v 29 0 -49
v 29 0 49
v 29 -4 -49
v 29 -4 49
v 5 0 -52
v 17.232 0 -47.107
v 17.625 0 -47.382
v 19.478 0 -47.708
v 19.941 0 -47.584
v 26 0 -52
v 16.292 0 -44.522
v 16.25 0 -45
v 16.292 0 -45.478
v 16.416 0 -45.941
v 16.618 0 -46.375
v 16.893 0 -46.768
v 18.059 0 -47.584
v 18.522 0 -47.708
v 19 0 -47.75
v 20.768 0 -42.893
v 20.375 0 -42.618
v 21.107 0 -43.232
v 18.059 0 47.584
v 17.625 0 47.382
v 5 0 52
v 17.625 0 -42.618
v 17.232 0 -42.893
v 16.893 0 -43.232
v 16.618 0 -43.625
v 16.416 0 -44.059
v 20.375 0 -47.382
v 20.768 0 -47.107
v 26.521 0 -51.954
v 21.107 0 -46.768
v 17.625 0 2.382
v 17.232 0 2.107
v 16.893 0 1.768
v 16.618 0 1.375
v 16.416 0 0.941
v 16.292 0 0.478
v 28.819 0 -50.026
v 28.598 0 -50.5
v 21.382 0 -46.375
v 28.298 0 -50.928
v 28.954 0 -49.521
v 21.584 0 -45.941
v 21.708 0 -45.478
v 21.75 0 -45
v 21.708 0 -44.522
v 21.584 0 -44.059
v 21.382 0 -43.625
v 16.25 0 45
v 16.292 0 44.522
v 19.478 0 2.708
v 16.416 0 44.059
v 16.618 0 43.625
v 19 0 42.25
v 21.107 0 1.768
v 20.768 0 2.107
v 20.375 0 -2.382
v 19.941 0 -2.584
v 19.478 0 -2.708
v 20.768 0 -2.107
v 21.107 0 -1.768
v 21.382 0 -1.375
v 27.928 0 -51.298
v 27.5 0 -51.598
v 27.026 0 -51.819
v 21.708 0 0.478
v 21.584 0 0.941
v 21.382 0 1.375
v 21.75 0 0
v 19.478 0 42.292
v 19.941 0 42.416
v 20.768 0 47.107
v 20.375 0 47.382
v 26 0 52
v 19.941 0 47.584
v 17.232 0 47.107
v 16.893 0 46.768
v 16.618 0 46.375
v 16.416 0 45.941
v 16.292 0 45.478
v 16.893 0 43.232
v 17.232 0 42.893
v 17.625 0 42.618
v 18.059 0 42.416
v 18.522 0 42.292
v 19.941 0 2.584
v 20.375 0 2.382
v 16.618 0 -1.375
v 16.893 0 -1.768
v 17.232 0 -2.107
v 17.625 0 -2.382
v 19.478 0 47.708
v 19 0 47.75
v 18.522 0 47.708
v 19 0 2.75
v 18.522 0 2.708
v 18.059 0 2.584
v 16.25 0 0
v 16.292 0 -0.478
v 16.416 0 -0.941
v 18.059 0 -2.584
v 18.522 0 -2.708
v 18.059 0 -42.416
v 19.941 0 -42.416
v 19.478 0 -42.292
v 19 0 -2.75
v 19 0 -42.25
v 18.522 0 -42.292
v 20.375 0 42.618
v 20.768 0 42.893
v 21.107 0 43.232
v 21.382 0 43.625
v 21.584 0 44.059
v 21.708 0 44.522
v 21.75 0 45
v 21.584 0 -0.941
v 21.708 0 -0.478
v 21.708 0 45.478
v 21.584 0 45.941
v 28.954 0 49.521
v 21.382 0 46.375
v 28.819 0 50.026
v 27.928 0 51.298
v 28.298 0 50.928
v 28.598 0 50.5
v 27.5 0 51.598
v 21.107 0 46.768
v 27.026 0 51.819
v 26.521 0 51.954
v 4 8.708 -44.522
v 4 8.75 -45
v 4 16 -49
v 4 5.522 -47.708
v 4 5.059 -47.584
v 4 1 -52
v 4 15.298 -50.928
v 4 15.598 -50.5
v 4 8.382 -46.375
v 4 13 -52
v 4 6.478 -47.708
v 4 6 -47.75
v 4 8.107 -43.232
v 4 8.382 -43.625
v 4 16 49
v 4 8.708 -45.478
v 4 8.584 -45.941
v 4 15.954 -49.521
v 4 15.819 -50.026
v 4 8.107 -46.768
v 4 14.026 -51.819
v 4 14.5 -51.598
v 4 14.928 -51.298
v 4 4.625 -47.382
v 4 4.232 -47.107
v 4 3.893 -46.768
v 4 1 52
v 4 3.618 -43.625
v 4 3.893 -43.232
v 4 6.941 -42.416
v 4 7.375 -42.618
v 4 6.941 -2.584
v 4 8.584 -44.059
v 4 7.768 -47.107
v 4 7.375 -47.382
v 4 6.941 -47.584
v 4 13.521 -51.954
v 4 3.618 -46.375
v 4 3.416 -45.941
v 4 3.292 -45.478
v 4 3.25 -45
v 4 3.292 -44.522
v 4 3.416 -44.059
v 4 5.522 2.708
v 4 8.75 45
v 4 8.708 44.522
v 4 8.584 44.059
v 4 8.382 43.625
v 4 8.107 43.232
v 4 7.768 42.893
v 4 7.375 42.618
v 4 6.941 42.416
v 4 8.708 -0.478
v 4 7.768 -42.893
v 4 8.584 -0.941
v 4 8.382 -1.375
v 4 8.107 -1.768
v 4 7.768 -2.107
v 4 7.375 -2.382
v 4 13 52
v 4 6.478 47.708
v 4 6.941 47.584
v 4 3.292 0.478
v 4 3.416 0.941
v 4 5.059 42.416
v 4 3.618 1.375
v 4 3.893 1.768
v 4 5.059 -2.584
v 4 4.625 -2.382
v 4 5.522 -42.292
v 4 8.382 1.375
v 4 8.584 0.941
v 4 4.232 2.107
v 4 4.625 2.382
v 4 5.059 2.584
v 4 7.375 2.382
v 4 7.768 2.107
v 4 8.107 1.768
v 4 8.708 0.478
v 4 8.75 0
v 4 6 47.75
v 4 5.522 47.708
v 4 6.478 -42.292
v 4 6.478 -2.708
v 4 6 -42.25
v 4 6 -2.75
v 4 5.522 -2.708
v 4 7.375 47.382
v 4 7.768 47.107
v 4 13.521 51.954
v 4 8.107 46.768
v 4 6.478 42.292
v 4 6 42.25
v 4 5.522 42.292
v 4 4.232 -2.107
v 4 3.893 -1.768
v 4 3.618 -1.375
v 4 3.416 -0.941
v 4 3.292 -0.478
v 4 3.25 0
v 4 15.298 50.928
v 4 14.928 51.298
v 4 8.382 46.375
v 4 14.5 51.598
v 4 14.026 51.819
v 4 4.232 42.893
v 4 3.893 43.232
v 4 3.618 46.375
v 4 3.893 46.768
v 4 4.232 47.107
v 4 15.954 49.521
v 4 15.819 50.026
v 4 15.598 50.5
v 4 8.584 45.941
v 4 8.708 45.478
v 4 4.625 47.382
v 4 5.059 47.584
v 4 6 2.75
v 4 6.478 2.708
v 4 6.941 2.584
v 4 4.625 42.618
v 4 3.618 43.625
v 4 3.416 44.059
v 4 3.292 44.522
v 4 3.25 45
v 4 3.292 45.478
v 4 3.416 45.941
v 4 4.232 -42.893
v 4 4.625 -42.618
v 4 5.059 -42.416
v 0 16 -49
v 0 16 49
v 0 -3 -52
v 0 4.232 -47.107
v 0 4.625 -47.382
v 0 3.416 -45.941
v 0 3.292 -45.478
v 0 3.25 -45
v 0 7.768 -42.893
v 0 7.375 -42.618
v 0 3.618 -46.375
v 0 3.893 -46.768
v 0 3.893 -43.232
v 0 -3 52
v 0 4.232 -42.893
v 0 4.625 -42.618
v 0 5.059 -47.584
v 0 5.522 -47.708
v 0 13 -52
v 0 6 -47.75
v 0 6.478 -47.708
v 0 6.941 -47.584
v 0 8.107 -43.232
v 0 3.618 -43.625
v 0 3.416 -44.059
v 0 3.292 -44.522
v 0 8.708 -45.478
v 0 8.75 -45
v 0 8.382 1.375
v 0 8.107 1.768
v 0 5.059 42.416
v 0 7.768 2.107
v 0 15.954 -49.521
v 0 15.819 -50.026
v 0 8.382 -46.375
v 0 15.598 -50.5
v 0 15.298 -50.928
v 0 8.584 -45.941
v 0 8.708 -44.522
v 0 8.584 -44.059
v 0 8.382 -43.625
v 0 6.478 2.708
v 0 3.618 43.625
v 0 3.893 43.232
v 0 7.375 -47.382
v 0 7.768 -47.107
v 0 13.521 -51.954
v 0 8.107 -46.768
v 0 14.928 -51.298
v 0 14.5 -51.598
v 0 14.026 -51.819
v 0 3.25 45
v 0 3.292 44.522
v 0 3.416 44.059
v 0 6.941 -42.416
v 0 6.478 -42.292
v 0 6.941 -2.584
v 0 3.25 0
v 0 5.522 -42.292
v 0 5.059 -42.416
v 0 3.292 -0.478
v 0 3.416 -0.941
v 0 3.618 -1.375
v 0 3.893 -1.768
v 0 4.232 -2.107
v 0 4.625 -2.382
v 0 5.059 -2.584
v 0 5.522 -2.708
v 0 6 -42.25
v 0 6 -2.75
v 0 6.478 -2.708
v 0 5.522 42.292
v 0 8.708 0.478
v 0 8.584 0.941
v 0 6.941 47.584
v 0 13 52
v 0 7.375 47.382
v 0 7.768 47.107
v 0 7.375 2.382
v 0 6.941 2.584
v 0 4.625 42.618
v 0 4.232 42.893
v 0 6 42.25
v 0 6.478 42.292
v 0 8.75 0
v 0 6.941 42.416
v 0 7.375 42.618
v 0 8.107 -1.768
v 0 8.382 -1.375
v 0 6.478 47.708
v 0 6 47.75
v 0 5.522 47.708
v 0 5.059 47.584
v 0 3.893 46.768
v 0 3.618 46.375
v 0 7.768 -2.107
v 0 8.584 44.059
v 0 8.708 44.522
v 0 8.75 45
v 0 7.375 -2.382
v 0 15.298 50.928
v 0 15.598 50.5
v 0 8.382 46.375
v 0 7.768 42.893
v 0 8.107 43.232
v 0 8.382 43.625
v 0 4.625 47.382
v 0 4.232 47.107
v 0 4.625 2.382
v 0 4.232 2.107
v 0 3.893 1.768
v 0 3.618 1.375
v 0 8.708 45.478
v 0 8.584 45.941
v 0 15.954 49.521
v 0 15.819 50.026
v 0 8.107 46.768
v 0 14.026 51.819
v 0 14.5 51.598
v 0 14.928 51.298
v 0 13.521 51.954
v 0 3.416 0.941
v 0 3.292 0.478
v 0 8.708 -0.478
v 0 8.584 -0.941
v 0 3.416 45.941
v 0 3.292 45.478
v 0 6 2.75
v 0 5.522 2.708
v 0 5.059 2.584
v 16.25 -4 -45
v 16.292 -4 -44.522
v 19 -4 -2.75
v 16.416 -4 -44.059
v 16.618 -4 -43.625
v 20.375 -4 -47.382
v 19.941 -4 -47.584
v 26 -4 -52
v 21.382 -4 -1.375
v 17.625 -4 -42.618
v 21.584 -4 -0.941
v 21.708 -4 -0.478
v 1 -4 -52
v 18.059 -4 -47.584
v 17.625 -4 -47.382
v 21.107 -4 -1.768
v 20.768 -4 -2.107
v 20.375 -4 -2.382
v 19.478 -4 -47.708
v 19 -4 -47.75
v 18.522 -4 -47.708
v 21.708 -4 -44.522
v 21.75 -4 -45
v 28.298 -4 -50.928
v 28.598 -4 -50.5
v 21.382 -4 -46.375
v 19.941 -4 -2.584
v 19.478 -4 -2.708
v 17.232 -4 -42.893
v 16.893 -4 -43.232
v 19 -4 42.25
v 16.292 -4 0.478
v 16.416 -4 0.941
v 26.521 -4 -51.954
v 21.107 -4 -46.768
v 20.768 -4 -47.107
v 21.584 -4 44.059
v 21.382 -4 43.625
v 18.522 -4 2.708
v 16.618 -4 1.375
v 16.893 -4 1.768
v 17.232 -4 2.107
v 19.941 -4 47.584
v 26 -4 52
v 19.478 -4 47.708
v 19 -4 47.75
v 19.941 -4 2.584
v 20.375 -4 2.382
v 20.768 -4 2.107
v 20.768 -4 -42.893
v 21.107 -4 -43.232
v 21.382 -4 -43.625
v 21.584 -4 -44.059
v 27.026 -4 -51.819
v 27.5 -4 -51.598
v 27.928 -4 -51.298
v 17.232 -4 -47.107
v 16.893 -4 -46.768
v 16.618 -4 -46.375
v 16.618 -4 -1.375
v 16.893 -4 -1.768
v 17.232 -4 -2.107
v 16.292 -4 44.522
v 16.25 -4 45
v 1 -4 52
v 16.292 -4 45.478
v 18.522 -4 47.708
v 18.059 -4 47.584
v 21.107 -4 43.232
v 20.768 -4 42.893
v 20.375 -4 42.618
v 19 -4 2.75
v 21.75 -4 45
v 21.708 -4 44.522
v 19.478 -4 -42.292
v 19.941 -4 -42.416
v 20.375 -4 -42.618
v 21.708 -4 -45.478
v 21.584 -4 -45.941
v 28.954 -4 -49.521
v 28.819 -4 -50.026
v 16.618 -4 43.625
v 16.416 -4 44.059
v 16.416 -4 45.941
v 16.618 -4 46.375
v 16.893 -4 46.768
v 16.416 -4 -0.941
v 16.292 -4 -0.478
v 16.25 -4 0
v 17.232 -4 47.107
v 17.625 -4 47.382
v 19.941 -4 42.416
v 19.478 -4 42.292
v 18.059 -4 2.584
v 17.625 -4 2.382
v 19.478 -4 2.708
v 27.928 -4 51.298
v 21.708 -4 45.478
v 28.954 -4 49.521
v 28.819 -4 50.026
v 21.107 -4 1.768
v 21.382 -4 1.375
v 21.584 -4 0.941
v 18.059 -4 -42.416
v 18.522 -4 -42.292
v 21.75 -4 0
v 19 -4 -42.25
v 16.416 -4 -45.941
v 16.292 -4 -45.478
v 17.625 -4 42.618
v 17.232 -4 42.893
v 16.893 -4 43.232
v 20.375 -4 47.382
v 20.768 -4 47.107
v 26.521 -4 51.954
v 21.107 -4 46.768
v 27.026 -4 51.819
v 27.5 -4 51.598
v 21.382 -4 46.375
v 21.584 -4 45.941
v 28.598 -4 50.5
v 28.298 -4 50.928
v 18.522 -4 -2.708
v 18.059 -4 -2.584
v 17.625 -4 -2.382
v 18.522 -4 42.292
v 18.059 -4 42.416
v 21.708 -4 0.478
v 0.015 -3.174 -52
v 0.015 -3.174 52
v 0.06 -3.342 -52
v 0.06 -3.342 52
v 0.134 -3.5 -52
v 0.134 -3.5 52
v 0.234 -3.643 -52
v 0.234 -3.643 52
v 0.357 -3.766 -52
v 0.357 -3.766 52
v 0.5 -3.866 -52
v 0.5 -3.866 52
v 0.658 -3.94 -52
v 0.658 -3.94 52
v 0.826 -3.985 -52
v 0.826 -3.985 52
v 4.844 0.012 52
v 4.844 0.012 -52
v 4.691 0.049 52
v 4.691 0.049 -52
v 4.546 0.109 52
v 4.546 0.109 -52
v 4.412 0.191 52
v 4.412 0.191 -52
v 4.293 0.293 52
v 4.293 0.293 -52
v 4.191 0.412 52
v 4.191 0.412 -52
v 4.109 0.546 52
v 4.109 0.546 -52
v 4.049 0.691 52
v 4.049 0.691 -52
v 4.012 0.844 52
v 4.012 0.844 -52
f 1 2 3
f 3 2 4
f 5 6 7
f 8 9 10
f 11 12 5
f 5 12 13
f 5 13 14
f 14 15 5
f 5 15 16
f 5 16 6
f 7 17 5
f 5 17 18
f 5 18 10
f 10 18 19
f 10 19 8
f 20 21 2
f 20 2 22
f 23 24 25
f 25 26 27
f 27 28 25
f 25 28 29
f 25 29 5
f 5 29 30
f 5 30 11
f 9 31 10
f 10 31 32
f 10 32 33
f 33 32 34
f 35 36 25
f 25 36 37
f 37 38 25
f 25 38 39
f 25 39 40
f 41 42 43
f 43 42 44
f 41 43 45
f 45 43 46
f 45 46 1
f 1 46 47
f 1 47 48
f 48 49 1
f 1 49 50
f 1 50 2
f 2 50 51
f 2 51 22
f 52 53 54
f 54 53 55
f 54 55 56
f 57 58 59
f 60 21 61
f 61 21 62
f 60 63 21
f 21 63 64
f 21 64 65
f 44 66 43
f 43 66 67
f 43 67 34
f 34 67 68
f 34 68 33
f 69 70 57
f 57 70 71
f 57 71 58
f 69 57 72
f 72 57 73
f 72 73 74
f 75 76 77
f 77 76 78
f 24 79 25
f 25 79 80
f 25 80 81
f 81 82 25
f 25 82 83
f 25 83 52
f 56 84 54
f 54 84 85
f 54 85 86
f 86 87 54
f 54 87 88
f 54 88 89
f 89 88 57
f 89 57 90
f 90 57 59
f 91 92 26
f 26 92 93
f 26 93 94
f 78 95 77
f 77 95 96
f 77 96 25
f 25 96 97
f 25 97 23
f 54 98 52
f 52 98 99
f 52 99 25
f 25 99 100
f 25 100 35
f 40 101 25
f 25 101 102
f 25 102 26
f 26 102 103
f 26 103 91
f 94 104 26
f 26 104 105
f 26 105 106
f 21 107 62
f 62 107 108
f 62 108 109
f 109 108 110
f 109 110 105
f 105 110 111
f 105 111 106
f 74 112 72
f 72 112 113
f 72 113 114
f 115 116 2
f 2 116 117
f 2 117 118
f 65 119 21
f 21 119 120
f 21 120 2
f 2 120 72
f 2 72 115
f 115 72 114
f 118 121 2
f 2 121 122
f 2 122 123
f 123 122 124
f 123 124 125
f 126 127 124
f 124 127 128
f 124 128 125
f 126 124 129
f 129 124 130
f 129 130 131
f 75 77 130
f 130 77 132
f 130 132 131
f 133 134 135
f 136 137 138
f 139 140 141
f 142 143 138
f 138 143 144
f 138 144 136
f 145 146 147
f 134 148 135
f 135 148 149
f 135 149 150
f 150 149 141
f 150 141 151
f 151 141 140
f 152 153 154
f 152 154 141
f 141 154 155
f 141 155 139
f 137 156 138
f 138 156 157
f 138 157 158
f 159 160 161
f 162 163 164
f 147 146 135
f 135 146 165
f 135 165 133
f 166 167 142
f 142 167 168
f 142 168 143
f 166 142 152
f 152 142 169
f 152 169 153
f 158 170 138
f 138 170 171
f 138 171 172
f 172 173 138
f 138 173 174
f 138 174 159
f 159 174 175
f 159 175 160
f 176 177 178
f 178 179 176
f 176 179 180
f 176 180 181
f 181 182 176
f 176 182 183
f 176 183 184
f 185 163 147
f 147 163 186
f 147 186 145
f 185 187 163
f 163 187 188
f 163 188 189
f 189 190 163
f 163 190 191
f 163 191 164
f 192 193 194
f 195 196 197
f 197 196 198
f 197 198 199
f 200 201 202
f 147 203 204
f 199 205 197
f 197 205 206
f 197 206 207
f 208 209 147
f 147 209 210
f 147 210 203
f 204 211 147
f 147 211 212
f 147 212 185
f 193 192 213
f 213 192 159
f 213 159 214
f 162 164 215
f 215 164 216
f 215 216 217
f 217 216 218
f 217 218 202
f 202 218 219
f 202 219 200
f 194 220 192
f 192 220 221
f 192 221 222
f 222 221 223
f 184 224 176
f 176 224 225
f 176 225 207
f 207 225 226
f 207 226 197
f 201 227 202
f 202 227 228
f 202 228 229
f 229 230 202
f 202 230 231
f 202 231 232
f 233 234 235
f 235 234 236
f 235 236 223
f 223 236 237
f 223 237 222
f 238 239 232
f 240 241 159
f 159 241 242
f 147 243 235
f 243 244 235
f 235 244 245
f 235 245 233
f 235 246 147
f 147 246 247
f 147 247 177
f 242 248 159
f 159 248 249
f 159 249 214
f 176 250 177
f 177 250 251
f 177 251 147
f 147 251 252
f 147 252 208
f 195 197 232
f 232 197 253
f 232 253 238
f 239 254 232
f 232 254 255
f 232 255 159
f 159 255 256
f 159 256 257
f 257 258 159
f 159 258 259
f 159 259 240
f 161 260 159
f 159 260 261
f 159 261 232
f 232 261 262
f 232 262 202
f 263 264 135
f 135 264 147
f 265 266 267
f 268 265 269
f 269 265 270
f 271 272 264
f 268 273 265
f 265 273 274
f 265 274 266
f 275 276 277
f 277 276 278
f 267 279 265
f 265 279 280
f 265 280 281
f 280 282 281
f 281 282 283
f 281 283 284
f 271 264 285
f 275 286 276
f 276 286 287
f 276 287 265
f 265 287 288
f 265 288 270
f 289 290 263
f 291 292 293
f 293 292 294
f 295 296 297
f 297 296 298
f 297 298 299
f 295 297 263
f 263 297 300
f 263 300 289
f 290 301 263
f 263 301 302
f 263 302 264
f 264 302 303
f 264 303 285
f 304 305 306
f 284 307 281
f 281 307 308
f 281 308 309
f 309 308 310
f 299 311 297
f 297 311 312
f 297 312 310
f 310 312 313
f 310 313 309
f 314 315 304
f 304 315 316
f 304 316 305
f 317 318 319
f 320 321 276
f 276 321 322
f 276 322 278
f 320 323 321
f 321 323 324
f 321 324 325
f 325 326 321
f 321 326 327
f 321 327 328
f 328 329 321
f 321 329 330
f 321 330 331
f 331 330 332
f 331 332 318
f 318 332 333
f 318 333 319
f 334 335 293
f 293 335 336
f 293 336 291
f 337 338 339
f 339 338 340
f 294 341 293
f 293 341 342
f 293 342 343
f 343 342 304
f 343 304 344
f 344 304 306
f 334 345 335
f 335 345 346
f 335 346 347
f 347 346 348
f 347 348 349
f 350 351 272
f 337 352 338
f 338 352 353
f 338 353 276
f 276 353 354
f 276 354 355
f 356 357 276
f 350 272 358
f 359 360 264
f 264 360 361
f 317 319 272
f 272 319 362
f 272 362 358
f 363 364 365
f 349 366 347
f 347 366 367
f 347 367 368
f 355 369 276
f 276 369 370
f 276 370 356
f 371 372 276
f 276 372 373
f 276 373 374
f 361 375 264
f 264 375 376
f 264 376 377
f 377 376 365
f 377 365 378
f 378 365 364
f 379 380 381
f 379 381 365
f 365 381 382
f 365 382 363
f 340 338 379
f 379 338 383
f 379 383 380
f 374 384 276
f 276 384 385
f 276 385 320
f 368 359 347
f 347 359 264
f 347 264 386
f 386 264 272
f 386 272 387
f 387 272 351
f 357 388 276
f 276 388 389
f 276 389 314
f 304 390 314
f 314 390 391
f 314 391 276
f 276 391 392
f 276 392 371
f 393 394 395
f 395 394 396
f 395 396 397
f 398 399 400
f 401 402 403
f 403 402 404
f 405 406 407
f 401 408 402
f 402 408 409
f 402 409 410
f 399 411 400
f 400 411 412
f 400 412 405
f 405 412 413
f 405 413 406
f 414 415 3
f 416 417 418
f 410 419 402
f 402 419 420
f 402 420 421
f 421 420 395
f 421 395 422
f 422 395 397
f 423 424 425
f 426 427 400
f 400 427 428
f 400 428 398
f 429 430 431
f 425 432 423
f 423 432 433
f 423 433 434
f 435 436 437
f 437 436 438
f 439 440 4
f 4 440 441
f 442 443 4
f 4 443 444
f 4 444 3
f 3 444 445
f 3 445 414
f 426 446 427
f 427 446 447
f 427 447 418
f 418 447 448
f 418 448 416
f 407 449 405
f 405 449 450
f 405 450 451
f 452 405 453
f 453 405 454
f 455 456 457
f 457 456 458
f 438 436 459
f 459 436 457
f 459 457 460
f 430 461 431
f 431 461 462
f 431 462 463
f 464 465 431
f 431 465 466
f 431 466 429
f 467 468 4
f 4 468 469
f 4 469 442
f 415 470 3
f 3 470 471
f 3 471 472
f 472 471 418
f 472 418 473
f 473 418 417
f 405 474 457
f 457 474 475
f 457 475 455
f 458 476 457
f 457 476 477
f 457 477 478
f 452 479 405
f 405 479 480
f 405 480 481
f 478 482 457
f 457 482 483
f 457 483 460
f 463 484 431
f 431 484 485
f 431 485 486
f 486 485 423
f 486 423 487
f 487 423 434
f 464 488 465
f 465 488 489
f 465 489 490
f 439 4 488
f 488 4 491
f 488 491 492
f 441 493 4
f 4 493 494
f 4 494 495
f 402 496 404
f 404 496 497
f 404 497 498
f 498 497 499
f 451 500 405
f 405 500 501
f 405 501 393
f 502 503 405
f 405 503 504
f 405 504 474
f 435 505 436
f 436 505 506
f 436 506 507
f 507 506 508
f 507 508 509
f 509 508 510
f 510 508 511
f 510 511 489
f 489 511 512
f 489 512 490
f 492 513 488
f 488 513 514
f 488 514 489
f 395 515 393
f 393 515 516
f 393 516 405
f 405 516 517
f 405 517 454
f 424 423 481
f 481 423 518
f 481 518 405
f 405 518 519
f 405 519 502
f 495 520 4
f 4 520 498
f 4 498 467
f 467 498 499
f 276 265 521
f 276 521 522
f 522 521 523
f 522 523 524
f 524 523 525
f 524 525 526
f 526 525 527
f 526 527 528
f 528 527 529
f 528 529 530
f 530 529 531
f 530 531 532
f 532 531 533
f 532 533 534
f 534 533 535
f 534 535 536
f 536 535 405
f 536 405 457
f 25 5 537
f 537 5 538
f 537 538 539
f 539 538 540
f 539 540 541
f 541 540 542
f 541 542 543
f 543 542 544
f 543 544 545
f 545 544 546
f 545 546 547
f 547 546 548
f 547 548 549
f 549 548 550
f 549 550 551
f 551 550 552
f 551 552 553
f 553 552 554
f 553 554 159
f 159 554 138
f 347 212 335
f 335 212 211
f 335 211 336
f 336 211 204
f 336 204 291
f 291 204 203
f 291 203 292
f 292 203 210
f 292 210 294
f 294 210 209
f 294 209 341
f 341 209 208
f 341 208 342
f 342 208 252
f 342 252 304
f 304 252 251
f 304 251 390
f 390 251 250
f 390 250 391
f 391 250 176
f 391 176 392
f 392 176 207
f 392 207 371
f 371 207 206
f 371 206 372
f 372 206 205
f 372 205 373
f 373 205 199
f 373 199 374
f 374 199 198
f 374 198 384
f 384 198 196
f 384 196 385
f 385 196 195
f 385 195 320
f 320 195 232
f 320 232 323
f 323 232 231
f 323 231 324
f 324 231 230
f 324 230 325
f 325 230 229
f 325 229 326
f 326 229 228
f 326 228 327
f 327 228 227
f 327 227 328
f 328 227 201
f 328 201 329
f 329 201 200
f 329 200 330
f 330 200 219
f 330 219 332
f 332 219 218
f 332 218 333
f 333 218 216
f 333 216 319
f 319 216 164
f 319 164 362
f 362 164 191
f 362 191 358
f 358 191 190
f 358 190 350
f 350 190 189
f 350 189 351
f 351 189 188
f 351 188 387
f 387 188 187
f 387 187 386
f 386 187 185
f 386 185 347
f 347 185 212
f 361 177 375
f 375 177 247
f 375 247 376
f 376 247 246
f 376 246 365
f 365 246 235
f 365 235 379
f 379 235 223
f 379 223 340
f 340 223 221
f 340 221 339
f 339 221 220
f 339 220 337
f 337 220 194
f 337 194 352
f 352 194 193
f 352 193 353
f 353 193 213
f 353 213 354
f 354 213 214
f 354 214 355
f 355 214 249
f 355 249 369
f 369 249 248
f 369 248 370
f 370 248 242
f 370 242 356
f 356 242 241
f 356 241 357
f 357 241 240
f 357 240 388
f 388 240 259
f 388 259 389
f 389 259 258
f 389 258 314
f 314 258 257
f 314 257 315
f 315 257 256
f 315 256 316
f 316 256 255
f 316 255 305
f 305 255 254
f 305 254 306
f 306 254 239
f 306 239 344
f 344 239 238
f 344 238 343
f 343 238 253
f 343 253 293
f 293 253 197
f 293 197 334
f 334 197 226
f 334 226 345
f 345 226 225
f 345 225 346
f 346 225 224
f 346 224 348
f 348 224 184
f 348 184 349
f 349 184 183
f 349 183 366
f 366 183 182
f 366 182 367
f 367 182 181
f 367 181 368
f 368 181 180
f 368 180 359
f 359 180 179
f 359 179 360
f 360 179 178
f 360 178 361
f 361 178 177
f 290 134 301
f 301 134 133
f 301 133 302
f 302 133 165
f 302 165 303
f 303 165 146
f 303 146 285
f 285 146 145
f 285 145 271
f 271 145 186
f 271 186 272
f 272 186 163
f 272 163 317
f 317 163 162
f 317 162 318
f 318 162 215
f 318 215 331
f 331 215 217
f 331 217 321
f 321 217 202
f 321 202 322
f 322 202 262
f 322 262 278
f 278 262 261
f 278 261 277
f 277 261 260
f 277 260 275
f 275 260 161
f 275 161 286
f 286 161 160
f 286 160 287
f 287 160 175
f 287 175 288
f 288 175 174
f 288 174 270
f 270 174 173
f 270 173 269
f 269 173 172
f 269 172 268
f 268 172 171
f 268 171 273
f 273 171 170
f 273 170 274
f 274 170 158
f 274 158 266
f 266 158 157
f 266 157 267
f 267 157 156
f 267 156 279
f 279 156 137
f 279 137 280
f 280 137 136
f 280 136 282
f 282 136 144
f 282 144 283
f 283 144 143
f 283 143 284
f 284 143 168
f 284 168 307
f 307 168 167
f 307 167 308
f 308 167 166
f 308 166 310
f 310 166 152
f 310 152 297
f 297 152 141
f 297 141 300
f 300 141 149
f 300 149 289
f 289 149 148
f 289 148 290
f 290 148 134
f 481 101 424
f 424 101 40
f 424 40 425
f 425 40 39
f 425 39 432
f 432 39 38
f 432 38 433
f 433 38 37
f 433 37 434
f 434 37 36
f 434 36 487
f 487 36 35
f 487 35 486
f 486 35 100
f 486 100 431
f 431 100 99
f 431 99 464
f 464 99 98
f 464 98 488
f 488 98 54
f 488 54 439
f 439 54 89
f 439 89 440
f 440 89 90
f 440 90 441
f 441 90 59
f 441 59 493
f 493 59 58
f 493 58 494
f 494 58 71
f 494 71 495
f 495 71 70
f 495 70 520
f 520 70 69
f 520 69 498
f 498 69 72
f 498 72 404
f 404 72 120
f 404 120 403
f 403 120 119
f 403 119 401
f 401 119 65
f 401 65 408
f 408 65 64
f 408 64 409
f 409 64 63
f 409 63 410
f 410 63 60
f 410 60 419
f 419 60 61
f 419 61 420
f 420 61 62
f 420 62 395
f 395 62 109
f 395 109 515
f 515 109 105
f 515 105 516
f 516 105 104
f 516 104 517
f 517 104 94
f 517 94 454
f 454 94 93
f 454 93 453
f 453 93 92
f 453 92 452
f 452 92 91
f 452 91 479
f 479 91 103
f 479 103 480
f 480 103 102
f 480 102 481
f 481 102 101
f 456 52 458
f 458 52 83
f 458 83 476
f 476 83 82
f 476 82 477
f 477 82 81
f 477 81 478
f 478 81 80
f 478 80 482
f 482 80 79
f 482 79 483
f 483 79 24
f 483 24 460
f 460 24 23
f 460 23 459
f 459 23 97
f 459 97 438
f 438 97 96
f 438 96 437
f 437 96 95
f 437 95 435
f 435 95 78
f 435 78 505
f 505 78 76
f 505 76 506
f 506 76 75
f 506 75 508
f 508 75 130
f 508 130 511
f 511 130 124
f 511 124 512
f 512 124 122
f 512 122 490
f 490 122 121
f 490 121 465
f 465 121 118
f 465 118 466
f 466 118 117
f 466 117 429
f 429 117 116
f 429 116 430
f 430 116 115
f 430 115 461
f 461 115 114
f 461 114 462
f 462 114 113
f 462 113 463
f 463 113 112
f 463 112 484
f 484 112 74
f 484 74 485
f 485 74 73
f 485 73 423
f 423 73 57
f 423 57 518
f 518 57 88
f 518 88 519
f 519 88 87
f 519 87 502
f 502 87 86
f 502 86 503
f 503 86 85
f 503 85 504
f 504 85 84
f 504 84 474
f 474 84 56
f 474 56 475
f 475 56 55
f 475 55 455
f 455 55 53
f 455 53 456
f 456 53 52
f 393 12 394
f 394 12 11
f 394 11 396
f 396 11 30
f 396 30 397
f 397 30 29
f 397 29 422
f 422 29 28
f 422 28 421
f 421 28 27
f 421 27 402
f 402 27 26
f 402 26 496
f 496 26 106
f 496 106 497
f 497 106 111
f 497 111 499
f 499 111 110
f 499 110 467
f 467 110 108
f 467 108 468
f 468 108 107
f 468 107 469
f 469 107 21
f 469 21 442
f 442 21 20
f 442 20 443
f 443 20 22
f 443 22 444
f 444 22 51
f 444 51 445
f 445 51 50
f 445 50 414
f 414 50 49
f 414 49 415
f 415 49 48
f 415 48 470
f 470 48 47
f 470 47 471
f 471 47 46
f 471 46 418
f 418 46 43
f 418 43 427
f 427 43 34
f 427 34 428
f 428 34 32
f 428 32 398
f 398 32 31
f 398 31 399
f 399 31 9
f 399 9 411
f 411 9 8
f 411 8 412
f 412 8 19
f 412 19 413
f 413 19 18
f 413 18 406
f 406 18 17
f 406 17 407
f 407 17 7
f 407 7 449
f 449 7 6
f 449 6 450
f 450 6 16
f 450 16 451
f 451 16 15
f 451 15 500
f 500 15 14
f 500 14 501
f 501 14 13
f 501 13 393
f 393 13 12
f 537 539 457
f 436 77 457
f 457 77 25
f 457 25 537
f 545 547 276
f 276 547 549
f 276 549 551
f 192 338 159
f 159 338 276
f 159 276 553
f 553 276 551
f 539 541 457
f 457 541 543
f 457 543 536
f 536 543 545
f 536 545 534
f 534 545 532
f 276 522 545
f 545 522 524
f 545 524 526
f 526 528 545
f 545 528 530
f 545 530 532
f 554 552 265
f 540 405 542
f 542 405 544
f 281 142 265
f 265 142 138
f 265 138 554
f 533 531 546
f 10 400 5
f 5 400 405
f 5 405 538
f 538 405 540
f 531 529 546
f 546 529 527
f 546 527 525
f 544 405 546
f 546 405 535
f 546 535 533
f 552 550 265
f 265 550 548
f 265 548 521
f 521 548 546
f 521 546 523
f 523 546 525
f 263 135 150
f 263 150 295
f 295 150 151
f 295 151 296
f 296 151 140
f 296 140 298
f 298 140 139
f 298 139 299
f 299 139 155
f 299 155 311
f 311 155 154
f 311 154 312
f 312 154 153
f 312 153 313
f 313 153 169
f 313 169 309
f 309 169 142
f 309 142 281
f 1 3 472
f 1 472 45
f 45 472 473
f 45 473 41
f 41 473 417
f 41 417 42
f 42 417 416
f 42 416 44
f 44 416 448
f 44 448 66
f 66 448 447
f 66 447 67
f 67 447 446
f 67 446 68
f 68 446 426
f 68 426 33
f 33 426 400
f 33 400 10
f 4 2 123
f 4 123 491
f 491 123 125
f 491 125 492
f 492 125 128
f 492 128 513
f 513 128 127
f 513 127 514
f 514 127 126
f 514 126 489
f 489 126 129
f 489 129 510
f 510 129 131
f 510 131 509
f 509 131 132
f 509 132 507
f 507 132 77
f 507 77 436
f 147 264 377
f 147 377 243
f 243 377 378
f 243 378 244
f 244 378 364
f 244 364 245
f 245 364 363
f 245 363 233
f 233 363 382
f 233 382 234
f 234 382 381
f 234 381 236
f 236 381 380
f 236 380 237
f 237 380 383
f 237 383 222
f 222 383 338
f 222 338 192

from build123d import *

# Parameters (mm, degrees)
SKETCH_1_W          = 29
SKETCH_1_H          = 4
SKETCH_1_W_2        = 4
SKETCH_1_H_2        = 16
EXTRUDE_1_DEPTH     = 55
SKETCH_3_R          = 2.75
CUT_EXTRUDE_3_DEPTH = 20
SKETCH_2_R          = 2.75
CUT_EXTRUDE_4_DEPTH = 20
FILLET_2_R          = 1
CUT_EXTRUDE_START   = -3
CUT_EXTRUDE_5_DEPTH = 3
CUT_EXTRUDE_6_DEPTH = 3
FILLET_3_R          = 3


with BuildPart() as part:
    # 스케치1 → 보스-돌출1 (new, symmetric)
    with BuildSketch(Plane.XY):
        with Locations((14.5, -2)):
            Rectangle(SKETCH_1_W, SKETCH_1_H)
        with Locations((2, 8)):
            Rectangle(SKETCH_1_W_2, SKETCH_1_H_2)
    extrude(amount=EXTRUDE_1_DEPTH, both=True)

    # 스케치3 → 컷-돌출3 (cut)
    with BuildSketch(Plane(origin=(4, 0, 0), x_dir=(0, 0, -1), z_dir=(1, 0, 0))):
        with Locations(Location((0, 6, 0), (0, 0, 90))):
            Circle(SKETCH_3_R)
        with Locations(Location((-45, 6, 0), (0, 0, 90))):
            Circle(SKETCH_3_R)
        with Locations(Location((45, 6, 0), (0, 0, 90))):
            Circle(SKETCH_3_R)
    extrude(amount=-CUT_EXTRUDE_3_DEPTH, mode=Mode.SUBTRACT)

    # 스케치2 → 컷-돌출4 (cut)
    with BuildSketch(Plane(origin=(0, 0, 0), x_dir=(1, 0, 0), z_dir=(0, 1, 0))):
        with Locations(Location((19, 0, 0), (0, 0, 180))):
            Circle(SKETCH_2_R)
        with Locations(Location((19, -45, 0), (0, 0, 180))):
            Circle(SKETCH_2_R)
        with Locations(Location((19, 45, 0), (0, 0, 180))):
            Circle(SKETCH_2_R)
    extrude(amount=-CUT_EXTRUDE_4_DEPTH, mode=Mode.SUBTRACT)

    # 필렛2
    fillet_2_edges = [part.edges().sort_by_distance(p)[0] for p in [
        (0, -4, 0),
        (4, 0, 0),
    ]]
    fillet(fillet_2_edges, radius=FILLET_2_R)

    # 스케치4 → 컷-돌출5 (cut)
    with BuildSketch(Plane.XY.offset(55).offset(CUT_EXTRUDE_START)):
        with BuildLine():
            Line((0, 16), (0, -3))
            ThreePointArc((0, -3), (0.292893219, -3.707106781), (1, -4))
            Line((1, -4), (29, -4))
            Line((29, -4), (29, 0))
            Line((29, 0), (5, 0))
            ThreePointArc((5, 0), (4.292893219, 0.292893219), (4, 1))
            Line((4, 1), (4, 16))
            Line((4, 16), (0, 16))
        make_face()
    extrude(amount=CUT_EXTRUDE_5_DEPTH, mode=Mode.SUBTRACT)

    # 스케치5 → 컷-돌출6 (cut)
    with BuildSketch(Plane(origin=(0, 0, -55), x_dir=(-1, 0, 0), z_dir=(0, 0, -1))):
        with BuildLine():
            Line((-29, -4), (-1, -4))
            ThreePointArc((-1, -4), (-0.292893219, -3.707106781), (0, -3))
            Line((0, -3), (0, 16))
            Line((0, 16), (-4, 16))
            Line((-4, 16), (-4, 1))
            ThreePointArc((-4, 1), (-4.292893219, 0.292893219), (-5, 0))
            Line((-5, 0), (-29, 0))
            Line((-29, 0), (-29, -4))
        make_face()
    extrude(amount=-CUT_EXTRUDE_6_DEPTH, mode=Mode.SUBTRACT)

    # 필렛3
    fillet_3_edges = [part.edges().sort_by_distance(p)[0] for p in [
        (29, -2, -52),
        (2, 16, -52),
        (2, 16, 52),
        (29, -2, 52),
    ]]
    fillet(fillet_3_edges, radius=FILLET_3_R)


solid = part.part
